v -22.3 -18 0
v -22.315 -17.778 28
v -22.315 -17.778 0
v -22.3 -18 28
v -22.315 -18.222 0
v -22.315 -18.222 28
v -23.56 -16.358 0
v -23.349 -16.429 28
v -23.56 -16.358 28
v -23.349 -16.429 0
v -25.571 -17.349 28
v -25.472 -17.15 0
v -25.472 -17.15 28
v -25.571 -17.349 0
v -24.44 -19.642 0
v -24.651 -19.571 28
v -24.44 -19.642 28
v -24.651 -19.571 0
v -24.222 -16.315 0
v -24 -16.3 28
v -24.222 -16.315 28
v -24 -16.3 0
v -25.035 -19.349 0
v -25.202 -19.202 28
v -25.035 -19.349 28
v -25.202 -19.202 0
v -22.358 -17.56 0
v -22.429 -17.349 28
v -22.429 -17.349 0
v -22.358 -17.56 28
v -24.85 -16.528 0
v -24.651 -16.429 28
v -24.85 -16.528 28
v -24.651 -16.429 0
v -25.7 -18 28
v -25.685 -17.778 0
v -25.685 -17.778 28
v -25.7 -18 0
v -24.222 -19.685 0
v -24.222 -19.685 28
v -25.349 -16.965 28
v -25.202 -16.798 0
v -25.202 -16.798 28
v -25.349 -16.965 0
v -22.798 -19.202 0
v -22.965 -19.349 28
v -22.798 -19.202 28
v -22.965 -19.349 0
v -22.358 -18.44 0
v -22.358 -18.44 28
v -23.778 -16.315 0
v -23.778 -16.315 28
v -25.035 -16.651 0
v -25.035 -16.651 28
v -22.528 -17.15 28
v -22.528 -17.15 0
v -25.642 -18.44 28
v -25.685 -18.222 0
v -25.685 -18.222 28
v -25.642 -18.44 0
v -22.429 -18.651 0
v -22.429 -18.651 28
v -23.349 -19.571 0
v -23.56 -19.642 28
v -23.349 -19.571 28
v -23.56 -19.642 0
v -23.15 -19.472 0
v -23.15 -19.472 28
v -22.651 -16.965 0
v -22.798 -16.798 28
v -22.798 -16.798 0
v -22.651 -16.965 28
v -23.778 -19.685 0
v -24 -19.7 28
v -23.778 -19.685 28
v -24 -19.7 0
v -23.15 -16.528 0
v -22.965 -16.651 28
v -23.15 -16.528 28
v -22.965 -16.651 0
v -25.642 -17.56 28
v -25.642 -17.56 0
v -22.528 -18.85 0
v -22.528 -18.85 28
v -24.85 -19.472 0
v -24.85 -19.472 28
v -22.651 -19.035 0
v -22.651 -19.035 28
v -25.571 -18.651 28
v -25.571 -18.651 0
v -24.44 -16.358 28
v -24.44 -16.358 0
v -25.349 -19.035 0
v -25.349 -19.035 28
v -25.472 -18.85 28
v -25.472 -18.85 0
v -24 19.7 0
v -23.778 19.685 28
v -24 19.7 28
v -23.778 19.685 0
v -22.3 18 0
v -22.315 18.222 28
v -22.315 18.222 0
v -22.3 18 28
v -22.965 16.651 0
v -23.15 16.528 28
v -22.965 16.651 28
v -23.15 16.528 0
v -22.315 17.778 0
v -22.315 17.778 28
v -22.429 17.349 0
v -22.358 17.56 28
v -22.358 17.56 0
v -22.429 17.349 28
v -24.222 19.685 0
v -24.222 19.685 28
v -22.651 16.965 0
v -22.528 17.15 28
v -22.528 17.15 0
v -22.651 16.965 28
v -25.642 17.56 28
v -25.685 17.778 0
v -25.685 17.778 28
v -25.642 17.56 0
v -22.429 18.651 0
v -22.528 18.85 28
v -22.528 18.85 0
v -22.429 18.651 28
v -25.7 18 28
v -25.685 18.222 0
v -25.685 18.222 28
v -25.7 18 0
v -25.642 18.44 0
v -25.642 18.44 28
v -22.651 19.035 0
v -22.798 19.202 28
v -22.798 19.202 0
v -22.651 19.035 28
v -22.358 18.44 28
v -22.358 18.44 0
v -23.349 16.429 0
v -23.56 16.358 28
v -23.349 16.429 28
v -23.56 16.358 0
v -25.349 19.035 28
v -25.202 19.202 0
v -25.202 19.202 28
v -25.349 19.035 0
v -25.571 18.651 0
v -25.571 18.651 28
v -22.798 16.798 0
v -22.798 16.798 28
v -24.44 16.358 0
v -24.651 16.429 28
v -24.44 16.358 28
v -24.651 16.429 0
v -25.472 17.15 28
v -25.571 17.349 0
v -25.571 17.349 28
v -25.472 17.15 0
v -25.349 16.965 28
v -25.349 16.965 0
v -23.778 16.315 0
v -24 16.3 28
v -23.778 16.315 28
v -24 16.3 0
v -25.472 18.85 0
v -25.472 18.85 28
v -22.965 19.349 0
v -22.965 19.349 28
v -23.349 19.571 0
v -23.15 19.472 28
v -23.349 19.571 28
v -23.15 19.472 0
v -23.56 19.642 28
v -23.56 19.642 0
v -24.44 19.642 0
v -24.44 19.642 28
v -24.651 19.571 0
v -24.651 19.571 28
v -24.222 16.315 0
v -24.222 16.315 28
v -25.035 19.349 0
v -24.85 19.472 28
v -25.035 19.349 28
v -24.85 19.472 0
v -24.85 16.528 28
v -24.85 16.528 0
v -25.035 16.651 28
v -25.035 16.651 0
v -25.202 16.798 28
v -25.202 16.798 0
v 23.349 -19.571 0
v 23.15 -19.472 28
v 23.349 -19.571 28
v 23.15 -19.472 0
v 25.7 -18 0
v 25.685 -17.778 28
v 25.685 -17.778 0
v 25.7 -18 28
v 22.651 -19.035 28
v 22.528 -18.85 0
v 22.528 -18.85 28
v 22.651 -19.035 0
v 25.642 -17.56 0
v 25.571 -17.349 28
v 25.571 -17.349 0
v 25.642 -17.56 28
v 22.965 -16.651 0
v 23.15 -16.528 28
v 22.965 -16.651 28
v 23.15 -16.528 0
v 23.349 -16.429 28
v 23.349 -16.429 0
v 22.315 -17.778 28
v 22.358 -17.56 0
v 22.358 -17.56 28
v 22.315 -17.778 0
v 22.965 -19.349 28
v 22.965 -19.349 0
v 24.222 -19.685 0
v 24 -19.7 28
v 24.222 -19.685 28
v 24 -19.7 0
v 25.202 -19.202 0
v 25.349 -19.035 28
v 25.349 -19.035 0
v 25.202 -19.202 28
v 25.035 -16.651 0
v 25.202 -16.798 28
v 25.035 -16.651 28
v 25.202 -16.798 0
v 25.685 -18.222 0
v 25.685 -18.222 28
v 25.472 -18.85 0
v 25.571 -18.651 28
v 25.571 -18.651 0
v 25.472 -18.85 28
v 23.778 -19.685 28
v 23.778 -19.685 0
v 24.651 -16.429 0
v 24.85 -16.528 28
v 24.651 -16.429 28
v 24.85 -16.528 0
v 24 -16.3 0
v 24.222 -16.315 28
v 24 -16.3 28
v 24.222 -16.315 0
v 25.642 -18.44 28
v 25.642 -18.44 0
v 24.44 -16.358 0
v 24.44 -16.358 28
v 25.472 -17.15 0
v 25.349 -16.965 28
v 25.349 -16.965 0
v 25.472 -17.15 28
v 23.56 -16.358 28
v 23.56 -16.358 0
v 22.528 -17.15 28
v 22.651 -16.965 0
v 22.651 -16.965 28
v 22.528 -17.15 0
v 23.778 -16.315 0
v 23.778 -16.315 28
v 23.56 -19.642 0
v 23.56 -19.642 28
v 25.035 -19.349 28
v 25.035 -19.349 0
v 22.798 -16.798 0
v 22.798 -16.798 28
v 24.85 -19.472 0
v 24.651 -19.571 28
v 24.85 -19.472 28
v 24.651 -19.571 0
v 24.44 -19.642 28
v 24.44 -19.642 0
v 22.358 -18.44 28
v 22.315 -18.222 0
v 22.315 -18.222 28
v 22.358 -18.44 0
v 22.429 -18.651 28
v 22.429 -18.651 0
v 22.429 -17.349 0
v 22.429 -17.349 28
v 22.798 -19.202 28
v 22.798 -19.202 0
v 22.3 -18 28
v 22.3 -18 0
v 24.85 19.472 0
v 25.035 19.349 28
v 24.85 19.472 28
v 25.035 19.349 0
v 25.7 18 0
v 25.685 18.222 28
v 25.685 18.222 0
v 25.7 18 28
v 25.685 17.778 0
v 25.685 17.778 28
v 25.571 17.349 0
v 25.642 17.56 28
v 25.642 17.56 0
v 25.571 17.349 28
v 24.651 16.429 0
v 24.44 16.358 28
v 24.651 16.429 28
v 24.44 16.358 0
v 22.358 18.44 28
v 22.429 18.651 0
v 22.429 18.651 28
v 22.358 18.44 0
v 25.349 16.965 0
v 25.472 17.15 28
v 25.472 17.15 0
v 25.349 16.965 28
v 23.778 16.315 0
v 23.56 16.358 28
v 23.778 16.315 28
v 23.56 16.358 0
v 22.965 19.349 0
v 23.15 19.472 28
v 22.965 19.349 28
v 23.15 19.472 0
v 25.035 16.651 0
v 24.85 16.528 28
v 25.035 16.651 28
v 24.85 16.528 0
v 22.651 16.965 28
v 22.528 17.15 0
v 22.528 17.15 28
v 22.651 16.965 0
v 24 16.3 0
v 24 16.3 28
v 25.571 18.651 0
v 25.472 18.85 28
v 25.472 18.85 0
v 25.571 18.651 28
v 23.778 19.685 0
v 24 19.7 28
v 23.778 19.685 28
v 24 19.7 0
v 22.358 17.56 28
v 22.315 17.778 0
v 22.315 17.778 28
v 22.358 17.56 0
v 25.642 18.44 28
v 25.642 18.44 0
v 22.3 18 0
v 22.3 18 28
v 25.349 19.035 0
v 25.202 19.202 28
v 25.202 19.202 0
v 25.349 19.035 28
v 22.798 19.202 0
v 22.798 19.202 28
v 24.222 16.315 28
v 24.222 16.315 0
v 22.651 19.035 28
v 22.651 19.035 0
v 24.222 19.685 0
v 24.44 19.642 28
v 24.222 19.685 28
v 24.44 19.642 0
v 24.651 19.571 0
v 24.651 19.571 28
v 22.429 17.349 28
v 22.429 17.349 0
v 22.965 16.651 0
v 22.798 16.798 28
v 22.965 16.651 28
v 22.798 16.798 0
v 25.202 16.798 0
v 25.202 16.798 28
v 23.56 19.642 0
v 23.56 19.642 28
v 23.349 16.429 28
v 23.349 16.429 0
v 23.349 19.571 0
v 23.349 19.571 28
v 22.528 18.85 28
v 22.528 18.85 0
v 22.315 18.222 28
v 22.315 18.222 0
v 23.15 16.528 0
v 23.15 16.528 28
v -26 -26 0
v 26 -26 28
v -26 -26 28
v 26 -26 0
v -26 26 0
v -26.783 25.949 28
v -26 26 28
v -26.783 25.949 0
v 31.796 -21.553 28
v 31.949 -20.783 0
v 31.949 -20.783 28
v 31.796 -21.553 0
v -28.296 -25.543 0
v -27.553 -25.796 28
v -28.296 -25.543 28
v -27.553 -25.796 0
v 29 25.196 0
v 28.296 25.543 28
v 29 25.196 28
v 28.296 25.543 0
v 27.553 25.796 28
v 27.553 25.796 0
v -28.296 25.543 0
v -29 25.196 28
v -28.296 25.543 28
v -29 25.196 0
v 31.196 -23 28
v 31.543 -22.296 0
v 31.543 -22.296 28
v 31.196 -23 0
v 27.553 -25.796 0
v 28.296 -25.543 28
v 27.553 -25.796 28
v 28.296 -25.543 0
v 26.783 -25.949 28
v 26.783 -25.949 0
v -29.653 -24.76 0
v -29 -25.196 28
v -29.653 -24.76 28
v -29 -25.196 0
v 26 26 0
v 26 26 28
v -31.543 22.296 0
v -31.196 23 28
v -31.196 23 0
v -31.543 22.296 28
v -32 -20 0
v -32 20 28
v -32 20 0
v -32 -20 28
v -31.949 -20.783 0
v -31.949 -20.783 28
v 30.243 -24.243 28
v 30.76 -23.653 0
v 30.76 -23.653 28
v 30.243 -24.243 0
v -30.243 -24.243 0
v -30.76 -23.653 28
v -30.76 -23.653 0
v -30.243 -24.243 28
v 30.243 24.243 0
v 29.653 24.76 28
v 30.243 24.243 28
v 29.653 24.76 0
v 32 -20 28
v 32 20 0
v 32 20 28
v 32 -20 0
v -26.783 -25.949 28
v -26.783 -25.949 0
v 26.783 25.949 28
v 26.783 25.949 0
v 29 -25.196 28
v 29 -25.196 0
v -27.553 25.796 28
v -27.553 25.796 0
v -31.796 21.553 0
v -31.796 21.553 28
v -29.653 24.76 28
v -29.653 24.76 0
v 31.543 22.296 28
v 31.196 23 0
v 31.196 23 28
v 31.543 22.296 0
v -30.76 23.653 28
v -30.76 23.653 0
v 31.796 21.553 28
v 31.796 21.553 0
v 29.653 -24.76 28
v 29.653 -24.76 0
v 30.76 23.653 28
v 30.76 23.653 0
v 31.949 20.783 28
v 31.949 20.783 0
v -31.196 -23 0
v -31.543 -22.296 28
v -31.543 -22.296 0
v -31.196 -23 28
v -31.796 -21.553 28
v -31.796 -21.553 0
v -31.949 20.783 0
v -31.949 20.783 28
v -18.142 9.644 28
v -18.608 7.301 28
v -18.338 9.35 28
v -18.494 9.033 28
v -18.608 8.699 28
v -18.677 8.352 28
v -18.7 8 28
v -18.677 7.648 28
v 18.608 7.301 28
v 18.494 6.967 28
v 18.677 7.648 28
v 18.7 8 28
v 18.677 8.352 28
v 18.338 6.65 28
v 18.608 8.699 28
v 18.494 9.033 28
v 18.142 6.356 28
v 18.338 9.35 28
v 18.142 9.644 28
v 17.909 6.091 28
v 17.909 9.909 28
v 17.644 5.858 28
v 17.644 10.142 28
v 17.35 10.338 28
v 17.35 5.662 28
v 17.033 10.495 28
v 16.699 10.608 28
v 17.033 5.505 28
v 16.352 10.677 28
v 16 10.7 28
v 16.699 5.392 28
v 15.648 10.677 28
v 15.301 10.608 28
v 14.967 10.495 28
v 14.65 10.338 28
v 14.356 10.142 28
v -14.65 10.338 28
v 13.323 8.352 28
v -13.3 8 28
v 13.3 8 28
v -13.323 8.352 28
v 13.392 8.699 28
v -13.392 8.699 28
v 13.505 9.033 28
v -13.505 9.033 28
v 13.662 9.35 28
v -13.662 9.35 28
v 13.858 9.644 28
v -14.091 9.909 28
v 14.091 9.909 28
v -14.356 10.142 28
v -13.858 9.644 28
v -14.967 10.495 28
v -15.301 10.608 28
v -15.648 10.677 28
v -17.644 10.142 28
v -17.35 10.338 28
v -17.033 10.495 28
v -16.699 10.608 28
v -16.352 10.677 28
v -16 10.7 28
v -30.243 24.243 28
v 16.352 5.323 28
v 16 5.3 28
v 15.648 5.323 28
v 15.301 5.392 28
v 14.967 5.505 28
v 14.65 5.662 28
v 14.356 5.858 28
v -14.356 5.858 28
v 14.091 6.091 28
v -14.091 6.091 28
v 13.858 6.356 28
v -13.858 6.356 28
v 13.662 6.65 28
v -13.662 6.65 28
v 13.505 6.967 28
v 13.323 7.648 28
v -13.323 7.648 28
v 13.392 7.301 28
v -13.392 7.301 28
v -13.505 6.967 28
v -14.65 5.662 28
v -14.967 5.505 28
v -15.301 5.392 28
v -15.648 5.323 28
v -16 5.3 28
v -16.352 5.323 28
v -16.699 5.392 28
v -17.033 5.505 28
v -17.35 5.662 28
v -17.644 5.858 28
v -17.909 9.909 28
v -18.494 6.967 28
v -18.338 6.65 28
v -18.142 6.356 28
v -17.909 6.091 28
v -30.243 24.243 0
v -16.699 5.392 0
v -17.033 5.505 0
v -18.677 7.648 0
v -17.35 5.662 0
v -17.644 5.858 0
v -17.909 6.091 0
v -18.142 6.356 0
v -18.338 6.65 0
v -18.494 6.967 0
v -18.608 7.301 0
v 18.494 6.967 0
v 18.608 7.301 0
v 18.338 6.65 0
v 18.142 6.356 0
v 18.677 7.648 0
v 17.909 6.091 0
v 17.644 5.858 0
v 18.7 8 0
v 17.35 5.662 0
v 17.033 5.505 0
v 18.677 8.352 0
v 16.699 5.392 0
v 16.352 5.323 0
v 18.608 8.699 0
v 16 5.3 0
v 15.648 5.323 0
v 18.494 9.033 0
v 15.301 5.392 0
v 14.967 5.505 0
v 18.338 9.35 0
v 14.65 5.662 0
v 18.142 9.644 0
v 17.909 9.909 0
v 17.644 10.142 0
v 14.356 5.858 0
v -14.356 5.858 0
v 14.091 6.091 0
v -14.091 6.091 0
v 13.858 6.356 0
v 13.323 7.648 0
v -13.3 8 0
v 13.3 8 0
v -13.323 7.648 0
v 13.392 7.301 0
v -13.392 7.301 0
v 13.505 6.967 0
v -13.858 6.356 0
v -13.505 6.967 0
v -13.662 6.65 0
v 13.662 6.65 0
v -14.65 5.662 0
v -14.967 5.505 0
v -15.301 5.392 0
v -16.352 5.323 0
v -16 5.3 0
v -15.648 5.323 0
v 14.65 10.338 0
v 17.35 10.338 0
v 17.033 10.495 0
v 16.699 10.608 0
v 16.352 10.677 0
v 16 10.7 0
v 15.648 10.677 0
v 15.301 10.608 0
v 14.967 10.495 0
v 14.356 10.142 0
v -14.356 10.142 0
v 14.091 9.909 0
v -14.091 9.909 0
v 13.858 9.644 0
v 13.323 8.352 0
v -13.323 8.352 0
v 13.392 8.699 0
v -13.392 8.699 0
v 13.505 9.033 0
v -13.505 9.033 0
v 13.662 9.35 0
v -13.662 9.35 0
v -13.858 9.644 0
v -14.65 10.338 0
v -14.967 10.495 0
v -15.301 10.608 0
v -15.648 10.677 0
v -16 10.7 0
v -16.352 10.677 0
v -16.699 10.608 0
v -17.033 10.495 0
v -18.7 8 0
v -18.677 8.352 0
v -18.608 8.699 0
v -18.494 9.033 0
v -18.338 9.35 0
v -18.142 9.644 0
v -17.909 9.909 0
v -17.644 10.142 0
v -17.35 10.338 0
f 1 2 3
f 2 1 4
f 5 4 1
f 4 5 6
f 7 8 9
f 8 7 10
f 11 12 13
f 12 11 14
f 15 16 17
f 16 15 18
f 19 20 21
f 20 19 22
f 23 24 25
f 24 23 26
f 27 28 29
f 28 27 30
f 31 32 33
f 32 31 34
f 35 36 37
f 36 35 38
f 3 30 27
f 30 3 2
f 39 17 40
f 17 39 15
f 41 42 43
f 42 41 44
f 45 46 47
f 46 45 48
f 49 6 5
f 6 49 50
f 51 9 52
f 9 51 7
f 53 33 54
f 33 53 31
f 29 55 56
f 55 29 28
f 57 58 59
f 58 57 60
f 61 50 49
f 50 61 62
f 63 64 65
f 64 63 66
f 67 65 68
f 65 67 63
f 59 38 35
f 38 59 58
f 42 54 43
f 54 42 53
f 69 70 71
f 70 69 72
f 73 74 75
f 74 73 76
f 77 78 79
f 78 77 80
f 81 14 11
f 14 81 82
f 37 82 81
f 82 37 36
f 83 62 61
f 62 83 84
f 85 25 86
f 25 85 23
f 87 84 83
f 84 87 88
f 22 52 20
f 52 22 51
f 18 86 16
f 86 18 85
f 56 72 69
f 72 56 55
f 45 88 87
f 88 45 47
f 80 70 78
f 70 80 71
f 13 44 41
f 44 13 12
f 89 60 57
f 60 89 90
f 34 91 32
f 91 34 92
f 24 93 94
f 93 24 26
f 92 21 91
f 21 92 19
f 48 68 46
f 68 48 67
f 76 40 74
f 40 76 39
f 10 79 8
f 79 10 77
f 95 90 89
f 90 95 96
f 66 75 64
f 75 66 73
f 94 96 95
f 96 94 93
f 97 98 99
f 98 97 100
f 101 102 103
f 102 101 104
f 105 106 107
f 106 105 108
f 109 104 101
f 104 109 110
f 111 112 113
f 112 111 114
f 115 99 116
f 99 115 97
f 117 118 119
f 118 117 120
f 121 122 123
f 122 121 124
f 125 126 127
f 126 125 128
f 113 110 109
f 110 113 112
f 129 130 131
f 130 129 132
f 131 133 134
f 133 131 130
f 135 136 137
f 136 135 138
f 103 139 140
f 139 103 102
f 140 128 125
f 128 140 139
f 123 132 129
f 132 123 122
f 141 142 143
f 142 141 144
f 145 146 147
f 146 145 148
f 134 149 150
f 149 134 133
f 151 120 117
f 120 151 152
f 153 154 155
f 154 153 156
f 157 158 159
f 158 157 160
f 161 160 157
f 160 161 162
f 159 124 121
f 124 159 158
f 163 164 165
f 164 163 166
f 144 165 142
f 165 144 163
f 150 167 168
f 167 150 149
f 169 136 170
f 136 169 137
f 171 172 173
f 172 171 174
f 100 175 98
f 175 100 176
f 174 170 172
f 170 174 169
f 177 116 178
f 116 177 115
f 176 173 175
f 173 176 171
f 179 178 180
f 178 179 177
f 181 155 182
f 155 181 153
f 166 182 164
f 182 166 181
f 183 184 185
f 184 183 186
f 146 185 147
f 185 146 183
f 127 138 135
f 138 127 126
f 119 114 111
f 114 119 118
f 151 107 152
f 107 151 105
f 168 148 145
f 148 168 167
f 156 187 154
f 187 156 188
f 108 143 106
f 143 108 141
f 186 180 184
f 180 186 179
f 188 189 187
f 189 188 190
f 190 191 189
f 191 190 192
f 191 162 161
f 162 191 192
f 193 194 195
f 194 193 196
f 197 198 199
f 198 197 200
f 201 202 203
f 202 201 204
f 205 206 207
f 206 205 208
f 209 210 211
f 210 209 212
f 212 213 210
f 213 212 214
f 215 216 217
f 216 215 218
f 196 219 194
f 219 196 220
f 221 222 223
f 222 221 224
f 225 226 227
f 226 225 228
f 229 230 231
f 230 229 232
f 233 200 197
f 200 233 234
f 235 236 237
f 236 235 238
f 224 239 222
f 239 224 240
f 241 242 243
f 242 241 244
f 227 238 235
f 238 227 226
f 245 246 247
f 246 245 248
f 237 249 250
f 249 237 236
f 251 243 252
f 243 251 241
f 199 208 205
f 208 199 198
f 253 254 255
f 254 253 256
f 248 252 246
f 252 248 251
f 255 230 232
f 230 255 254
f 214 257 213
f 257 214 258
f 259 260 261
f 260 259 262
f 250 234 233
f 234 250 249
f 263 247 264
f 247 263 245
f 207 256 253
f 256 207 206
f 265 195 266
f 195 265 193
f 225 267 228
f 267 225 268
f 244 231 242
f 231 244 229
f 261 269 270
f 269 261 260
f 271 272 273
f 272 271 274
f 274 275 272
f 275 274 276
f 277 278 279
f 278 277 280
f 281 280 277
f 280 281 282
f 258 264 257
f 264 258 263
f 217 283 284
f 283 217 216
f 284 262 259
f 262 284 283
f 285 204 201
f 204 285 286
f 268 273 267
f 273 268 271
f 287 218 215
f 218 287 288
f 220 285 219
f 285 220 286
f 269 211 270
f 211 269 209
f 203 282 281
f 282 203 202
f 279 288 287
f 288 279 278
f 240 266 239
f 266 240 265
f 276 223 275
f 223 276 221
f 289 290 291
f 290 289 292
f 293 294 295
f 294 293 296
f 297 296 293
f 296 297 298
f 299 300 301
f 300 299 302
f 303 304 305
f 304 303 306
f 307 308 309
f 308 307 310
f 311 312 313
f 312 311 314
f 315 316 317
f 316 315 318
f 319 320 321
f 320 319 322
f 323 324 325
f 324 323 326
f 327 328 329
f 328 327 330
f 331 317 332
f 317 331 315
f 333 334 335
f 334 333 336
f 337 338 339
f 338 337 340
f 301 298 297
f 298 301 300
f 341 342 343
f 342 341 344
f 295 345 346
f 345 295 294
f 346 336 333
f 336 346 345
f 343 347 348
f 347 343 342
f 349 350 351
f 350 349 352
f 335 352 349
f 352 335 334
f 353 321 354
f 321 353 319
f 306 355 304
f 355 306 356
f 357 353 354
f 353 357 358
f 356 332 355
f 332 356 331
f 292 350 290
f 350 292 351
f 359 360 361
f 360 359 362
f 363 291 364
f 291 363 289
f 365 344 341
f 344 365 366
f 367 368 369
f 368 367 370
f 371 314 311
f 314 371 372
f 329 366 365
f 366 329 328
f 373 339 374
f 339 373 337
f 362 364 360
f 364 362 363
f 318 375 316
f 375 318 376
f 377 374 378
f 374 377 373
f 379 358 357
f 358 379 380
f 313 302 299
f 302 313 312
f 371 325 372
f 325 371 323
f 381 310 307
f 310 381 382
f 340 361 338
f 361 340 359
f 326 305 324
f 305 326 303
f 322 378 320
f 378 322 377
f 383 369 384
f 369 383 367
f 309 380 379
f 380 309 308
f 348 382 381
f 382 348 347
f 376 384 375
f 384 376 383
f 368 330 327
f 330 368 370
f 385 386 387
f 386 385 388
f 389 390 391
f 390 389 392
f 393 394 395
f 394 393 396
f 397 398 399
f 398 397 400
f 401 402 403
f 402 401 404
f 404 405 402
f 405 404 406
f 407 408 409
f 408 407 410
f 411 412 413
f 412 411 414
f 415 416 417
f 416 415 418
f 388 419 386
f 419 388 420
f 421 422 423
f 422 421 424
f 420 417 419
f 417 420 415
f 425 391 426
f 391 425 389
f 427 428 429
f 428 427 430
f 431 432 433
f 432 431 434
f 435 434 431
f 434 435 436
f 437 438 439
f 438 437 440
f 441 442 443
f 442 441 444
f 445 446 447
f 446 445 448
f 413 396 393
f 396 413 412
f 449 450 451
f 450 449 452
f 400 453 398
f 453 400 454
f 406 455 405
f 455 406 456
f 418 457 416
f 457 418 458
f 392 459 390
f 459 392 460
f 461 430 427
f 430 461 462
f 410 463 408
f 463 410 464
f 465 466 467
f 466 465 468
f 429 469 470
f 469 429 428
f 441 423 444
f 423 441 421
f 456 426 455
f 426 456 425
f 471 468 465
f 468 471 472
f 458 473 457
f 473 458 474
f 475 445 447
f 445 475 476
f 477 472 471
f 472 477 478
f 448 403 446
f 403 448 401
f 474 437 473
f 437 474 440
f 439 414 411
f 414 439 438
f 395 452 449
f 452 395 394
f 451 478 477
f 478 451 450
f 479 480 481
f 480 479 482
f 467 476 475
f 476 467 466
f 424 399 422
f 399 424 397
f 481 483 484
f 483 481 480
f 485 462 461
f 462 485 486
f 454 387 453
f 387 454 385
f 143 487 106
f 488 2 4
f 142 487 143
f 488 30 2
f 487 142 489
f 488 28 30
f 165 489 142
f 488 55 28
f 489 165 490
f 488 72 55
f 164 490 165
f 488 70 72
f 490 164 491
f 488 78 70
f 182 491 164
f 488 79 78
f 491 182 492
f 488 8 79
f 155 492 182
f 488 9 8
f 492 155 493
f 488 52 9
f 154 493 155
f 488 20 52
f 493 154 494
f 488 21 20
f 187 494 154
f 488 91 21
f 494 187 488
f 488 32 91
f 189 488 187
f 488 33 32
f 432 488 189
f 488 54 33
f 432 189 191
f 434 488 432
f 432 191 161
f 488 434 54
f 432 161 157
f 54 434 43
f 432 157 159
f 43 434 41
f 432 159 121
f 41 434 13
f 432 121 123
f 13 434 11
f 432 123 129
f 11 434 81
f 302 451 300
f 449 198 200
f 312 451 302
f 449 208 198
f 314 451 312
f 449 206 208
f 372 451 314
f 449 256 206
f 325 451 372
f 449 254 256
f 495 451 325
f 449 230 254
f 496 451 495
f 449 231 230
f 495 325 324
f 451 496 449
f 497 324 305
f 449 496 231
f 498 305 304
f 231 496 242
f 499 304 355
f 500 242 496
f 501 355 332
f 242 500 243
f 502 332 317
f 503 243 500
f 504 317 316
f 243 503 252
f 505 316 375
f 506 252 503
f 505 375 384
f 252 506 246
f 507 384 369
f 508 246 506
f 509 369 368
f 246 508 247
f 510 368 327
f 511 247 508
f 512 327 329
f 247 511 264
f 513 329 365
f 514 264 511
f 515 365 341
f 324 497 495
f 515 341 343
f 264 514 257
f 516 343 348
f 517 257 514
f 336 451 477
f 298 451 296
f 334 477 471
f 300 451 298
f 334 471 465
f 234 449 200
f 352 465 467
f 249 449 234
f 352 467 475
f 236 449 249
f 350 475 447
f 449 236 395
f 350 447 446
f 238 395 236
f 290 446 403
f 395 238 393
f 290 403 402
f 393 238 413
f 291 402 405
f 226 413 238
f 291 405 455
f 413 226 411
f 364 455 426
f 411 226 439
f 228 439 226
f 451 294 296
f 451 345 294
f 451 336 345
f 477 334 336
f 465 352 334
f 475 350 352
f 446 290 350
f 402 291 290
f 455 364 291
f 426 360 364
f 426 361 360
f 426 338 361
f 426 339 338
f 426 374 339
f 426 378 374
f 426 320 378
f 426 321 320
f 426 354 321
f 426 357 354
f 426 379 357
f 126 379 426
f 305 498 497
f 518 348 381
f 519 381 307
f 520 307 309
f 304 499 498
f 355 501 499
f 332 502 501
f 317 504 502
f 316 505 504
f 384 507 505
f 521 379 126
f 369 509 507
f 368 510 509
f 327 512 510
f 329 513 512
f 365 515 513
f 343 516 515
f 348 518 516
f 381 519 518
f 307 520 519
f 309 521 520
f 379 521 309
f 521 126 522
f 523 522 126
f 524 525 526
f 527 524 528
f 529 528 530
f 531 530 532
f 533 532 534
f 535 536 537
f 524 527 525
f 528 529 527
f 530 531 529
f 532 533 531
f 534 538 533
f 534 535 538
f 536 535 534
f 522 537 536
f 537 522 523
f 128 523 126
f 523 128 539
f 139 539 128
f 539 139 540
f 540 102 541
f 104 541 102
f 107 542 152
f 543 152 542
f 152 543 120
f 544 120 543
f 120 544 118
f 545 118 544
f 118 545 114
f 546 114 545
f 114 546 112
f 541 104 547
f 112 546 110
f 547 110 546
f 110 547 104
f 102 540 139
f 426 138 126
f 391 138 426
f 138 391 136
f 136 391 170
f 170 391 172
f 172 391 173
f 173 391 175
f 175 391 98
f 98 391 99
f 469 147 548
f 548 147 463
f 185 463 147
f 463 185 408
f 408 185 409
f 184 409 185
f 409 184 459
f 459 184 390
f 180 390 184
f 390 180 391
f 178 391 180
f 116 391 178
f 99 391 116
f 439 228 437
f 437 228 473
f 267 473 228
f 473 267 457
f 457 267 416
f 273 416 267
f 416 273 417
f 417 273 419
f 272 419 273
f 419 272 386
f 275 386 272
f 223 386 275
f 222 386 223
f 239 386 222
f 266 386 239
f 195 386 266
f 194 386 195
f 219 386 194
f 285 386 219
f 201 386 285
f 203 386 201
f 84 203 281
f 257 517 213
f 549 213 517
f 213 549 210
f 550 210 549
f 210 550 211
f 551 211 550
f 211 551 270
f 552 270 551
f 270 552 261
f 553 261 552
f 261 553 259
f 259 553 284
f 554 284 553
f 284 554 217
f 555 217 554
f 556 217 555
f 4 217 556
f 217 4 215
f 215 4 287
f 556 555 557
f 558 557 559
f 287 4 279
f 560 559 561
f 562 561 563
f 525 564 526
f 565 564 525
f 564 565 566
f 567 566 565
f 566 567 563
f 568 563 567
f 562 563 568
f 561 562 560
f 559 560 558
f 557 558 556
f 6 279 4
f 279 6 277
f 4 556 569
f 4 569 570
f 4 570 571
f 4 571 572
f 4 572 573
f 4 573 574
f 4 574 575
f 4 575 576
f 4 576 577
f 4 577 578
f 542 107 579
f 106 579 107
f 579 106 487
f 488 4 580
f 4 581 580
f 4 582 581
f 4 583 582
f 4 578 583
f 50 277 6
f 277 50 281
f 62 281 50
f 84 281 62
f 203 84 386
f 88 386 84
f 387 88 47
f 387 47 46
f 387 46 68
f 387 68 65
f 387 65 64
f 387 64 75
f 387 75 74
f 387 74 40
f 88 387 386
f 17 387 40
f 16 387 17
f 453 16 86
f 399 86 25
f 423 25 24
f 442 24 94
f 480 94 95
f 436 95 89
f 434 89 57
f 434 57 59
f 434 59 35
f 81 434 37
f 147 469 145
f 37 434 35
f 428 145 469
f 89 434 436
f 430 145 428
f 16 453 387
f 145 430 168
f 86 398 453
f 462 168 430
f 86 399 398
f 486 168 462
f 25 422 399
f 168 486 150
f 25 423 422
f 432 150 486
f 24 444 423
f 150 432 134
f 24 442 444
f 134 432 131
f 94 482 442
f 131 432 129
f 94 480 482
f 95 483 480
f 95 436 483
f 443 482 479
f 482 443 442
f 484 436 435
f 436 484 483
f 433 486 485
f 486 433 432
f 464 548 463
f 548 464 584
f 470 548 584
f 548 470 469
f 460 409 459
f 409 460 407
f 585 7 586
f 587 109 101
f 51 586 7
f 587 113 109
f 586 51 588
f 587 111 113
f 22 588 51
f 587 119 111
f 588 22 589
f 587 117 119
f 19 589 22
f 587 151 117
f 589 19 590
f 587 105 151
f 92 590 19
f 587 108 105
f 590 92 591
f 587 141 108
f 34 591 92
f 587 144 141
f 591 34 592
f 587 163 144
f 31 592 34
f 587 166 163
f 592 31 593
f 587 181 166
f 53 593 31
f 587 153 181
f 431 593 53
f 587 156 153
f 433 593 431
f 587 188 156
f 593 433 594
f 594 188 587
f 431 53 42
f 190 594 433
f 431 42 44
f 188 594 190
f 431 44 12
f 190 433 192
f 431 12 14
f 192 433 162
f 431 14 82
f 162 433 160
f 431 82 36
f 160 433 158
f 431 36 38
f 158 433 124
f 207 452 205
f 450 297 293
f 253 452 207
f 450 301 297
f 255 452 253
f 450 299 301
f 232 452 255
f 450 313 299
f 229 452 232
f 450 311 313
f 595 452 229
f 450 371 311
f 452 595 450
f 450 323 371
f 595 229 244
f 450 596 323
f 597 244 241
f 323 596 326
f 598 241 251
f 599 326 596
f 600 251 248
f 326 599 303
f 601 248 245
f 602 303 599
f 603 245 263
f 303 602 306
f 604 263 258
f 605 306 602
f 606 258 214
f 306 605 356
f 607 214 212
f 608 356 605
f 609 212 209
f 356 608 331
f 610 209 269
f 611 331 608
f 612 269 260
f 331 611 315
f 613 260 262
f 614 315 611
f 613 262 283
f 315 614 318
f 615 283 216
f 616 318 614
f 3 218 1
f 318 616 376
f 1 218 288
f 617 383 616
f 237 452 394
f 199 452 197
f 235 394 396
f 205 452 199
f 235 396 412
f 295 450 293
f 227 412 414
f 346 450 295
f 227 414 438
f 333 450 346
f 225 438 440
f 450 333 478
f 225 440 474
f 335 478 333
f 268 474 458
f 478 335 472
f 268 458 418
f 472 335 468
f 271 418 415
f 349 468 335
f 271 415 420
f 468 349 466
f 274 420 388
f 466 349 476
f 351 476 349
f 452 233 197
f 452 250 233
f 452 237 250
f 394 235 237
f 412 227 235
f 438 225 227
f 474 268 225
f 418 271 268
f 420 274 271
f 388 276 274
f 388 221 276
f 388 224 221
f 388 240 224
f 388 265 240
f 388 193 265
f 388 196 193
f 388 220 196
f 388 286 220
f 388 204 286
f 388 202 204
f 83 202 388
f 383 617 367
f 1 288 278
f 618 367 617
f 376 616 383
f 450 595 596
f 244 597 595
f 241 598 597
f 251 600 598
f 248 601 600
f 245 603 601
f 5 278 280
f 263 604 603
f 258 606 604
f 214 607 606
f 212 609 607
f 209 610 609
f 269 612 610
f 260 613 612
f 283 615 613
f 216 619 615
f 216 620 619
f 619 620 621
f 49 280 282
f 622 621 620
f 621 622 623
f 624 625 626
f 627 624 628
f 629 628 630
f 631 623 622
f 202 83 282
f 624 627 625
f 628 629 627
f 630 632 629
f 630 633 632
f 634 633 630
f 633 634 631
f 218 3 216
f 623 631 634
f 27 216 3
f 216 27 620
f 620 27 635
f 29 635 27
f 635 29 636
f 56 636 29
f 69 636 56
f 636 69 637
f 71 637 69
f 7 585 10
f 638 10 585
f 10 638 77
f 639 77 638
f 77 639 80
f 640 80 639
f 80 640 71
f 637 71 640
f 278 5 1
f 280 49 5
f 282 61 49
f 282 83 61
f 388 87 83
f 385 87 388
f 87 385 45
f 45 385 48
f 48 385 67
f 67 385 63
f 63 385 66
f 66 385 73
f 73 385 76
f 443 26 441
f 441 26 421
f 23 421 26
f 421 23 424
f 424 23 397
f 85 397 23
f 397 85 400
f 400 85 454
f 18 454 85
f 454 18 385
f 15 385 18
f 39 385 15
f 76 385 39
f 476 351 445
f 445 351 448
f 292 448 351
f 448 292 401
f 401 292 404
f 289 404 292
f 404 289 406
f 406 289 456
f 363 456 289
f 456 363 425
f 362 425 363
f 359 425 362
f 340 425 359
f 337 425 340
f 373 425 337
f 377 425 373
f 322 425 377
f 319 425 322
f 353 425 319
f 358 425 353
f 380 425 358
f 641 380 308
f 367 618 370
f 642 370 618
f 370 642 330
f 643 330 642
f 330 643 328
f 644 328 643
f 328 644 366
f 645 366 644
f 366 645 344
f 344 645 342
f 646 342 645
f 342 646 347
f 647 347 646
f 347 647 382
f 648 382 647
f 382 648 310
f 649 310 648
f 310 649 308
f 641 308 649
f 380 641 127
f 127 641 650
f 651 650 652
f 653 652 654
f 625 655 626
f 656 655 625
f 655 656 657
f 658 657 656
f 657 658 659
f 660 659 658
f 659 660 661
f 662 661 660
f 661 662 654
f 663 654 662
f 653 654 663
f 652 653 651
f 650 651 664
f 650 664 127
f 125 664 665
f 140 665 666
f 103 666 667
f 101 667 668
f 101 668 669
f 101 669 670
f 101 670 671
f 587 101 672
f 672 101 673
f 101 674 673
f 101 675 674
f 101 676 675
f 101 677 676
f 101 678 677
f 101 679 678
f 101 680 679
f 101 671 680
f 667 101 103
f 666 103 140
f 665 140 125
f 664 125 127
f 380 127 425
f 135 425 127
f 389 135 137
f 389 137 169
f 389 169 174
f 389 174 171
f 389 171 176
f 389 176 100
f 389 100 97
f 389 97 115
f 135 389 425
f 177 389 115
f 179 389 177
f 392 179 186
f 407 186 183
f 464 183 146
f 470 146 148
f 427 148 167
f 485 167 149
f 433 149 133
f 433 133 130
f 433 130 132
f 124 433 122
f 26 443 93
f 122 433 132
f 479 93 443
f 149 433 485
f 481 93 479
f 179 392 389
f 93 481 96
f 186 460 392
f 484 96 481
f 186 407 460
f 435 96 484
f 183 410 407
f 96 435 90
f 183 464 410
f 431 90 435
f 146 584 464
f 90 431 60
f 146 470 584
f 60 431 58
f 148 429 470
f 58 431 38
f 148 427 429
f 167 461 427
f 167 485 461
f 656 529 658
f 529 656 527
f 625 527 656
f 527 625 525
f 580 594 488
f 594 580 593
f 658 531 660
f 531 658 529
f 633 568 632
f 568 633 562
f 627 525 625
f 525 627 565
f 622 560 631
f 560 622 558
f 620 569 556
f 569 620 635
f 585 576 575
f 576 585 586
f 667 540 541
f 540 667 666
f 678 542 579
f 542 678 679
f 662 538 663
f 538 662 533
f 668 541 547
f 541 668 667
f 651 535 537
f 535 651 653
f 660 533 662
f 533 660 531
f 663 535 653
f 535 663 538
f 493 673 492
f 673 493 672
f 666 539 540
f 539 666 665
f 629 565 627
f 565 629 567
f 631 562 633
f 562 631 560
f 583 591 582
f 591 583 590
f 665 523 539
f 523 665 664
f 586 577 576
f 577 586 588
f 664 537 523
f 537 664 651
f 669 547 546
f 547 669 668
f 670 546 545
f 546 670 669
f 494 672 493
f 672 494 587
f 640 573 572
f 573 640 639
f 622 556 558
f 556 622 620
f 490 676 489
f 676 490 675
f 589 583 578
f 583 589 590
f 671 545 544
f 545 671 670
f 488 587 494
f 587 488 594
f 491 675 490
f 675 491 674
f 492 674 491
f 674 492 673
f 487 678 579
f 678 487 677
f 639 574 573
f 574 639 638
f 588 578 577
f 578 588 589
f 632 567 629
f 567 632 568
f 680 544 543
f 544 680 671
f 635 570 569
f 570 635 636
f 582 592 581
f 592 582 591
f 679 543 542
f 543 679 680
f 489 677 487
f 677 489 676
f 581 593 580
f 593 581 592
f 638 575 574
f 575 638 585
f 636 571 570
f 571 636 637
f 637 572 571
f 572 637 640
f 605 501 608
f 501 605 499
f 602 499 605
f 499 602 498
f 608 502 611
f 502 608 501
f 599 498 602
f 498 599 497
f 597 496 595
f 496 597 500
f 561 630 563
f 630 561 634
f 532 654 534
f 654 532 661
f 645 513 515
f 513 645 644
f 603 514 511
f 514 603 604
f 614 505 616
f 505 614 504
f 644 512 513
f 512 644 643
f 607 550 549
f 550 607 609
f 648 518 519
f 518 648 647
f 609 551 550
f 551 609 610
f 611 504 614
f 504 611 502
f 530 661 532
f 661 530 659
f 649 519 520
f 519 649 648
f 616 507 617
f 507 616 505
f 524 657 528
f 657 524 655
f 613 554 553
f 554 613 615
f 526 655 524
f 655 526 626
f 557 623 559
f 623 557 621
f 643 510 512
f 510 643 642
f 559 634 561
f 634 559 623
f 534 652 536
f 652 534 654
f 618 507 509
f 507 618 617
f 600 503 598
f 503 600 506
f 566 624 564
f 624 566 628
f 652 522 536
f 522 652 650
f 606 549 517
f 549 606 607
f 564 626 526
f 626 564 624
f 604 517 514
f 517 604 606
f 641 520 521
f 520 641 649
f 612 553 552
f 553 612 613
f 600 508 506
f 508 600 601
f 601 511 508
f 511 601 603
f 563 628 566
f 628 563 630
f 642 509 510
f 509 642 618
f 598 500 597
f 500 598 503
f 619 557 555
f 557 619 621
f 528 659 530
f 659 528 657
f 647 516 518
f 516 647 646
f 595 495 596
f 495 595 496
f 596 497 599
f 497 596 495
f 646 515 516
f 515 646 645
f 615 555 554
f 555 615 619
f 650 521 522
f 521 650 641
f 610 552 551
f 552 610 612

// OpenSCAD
// ============================================================================
// Get Me An Alt — Parametric OpenSCAD Module
// Part: PRT-08 — J6 Spur-Gear Parallel Gripper Chassis (gripper-body)
// Function: Mounts parallel gripper linkage to J5 wrist clevis.
// Target Bounding Box (mm): [64, 52, 28]
// Print Material: PLA+ | Min Wall: >= 1.6mm | Tolerance: 0.2mm
// ============================================================================
$fn = 48;
part_width = 64;
part_depth = 52;
part_height = 28;
wall_thickness = 2.8;
floor_thickness = 2.8;
corner_radius = 6;
tolerance = 0.2;
m3_clearance_d = 3.4; // M3 screw clearance hole (3.0mm + 2*0.2mm)

module rounded_rect_prism(w, d, h, r) {
  cr = max(0.5, min(r, min(w, d) / 2 - 0.1));
  linear_extrude(height = h)
    offset(r = cr)
      offset(r = -cr)
        square([w, d], center = true);
}

module part_gripper_body() {
  difference() {
    rounded_rect_prism(part_width, part_depth, part_height, corner_radius);
    translate([-16, 8, -1]) cylinder(h = part_height + 2, r = 2.5 + tolerance);
    translate([16, 8, -1]) cylinder(h = part_height + 2, r = 2.5 + tolerance);
    // M3 corner mounting holes
    for (mx = [-1, 1], my = [-1, 1]) {
      translate([mx * (part_width / 2 - 8), my * (part_depth / 2 - 8), -1])
        cylinder(h = part_height + 2, d = m3_clearance_d);
    }
  }
}

part_gripper_body();
